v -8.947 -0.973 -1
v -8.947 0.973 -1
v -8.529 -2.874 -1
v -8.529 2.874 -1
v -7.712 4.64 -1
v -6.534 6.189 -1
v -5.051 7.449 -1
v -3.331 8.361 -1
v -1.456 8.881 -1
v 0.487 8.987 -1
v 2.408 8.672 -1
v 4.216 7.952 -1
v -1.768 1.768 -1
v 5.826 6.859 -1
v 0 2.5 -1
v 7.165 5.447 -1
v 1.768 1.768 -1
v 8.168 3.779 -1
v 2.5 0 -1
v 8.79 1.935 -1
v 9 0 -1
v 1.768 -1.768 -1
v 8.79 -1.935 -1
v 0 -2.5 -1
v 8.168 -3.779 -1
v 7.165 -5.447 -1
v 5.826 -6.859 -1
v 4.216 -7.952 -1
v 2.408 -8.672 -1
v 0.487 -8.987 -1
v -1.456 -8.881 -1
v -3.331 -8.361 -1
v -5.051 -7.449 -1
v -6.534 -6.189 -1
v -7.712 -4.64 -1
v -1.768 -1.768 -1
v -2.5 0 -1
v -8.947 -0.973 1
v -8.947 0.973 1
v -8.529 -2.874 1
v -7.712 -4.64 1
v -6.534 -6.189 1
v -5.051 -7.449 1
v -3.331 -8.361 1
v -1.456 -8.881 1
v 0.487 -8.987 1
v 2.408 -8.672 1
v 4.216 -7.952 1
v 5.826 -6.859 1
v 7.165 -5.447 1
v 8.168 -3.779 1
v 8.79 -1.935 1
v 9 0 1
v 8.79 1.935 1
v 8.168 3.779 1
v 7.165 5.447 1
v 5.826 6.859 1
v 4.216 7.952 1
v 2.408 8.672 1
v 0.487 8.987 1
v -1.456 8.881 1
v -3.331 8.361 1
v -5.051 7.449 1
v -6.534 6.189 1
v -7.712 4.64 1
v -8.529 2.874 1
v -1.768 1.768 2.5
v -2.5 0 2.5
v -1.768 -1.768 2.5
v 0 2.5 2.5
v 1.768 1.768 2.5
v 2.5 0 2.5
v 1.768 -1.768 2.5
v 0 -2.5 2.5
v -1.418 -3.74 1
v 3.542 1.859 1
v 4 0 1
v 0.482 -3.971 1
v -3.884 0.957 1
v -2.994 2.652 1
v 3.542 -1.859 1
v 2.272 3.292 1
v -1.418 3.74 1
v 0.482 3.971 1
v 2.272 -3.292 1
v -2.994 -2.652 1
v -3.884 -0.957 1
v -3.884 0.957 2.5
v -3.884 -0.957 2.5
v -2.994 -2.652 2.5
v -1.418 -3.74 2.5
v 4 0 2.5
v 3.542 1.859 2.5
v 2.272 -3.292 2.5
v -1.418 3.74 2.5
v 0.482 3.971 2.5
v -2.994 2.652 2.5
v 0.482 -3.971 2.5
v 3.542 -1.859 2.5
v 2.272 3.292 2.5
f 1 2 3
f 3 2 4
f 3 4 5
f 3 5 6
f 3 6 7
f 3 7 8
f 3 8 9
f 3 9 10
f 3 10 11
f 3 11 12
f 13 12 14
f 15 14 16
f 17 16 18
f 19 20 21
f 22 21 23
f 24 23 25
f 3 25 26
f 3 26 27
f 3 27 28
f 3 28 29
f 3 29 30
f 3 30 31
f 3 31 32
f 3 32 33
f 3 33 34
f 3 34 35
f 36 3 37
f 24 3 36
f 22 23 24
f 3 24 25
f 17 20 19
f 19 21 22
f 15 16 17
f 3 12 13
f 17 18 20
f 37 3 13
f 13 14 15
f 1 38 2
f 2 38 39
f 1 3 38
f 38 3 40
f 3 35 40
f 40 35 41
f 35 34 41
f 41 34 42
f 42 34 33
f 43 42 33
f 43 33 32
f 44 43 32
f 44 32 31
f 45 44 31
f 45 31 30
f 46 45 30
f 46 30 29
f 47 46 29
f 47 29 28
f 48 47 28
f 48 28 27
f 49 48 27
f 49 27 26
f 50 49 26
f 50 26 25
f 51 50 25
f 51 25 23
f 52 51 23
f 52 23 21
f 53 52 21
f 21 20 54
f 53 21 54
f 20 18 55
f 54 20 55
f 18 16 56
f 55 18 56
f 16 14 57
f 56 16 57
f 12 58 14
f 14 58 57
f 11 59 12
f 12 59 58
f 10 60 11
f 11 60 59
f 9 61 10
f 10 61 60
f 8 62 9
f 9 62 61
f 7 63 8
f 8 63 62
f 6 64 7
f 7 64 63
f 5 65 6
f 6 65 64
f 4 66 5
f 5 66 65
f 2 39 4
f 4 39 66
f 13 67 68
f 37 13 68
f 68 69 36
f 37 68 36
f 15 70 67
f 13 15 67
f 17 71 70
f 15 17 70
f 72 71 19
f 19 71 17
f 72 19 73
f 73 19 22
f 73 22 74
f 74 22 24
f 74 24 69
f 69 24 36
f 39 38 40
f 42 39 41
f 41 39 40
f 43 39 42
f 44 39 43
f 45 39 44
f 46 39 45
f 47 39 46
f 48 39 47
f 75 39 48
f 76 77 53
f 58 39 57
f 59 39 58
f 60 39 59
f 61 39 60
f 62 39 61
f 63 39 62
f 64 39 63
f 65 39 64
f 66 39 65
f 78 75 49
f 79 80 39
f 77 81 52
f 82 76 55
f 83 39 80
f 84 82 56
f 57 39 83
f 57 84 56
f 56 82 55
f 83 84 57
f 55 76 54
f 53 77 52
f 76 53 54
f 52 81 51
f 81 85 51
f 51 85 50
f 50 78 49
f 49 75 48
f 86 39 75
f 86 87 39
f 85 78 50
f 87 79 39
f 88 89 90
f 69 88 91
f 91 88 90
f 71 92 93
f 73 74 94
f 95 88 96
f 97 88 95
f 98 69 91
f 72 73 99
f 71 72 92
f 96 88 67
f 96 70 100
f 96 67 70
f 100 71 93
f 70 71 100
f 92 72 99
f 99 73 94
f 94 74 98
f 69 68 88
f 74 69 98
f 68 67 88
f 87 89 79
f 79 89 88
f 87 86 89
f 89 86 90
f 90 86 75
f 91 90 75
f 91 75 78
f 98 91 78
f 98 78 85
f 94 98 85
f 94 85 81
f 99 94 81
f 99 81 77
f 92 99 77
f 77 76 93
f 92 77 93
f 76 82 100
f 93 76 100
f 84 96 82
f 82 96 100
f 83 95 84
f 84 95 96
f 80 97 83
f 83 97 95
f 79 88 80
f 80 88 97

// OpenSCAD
exterior = 18;
interior_rodamiento = 8;
tornillo = 5;

difference() {
	union() {
		cylinder(r1=exterior/2,r2=exterior/2,h=2, center=true);
		translate([0,0,1]) cylinder(r1=interior_rodamiento/2,r2=interior_rodamiento/2,h=3, center=true);
	}
	cylinder(r1=tornillo/2,r2=tornillo/2,h=50, center=true);
}
